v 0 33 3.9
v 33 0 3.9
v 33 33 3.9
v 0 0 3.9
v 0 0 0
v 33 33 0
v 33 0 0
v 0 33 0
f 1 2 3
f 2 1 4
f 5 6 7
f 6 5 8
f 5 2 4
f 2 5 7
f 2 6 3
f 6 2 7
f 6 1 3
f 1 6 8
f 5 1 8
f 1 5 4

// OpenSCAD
/* Warning, this is a very basic generator with a lot of approximation 
input data : [HB1BGA, SRC, 33x33x3.9mm, 1292, , A, C04-25679A]
generated by com.zoubworld.electronics.cad.model3d.Basic
Date : Sun Feb 15 10:50:49 CET 2026
*/

//body
color("black")
translate([0,0,0])
cube([33.0,33.0,3.9], center=false);
